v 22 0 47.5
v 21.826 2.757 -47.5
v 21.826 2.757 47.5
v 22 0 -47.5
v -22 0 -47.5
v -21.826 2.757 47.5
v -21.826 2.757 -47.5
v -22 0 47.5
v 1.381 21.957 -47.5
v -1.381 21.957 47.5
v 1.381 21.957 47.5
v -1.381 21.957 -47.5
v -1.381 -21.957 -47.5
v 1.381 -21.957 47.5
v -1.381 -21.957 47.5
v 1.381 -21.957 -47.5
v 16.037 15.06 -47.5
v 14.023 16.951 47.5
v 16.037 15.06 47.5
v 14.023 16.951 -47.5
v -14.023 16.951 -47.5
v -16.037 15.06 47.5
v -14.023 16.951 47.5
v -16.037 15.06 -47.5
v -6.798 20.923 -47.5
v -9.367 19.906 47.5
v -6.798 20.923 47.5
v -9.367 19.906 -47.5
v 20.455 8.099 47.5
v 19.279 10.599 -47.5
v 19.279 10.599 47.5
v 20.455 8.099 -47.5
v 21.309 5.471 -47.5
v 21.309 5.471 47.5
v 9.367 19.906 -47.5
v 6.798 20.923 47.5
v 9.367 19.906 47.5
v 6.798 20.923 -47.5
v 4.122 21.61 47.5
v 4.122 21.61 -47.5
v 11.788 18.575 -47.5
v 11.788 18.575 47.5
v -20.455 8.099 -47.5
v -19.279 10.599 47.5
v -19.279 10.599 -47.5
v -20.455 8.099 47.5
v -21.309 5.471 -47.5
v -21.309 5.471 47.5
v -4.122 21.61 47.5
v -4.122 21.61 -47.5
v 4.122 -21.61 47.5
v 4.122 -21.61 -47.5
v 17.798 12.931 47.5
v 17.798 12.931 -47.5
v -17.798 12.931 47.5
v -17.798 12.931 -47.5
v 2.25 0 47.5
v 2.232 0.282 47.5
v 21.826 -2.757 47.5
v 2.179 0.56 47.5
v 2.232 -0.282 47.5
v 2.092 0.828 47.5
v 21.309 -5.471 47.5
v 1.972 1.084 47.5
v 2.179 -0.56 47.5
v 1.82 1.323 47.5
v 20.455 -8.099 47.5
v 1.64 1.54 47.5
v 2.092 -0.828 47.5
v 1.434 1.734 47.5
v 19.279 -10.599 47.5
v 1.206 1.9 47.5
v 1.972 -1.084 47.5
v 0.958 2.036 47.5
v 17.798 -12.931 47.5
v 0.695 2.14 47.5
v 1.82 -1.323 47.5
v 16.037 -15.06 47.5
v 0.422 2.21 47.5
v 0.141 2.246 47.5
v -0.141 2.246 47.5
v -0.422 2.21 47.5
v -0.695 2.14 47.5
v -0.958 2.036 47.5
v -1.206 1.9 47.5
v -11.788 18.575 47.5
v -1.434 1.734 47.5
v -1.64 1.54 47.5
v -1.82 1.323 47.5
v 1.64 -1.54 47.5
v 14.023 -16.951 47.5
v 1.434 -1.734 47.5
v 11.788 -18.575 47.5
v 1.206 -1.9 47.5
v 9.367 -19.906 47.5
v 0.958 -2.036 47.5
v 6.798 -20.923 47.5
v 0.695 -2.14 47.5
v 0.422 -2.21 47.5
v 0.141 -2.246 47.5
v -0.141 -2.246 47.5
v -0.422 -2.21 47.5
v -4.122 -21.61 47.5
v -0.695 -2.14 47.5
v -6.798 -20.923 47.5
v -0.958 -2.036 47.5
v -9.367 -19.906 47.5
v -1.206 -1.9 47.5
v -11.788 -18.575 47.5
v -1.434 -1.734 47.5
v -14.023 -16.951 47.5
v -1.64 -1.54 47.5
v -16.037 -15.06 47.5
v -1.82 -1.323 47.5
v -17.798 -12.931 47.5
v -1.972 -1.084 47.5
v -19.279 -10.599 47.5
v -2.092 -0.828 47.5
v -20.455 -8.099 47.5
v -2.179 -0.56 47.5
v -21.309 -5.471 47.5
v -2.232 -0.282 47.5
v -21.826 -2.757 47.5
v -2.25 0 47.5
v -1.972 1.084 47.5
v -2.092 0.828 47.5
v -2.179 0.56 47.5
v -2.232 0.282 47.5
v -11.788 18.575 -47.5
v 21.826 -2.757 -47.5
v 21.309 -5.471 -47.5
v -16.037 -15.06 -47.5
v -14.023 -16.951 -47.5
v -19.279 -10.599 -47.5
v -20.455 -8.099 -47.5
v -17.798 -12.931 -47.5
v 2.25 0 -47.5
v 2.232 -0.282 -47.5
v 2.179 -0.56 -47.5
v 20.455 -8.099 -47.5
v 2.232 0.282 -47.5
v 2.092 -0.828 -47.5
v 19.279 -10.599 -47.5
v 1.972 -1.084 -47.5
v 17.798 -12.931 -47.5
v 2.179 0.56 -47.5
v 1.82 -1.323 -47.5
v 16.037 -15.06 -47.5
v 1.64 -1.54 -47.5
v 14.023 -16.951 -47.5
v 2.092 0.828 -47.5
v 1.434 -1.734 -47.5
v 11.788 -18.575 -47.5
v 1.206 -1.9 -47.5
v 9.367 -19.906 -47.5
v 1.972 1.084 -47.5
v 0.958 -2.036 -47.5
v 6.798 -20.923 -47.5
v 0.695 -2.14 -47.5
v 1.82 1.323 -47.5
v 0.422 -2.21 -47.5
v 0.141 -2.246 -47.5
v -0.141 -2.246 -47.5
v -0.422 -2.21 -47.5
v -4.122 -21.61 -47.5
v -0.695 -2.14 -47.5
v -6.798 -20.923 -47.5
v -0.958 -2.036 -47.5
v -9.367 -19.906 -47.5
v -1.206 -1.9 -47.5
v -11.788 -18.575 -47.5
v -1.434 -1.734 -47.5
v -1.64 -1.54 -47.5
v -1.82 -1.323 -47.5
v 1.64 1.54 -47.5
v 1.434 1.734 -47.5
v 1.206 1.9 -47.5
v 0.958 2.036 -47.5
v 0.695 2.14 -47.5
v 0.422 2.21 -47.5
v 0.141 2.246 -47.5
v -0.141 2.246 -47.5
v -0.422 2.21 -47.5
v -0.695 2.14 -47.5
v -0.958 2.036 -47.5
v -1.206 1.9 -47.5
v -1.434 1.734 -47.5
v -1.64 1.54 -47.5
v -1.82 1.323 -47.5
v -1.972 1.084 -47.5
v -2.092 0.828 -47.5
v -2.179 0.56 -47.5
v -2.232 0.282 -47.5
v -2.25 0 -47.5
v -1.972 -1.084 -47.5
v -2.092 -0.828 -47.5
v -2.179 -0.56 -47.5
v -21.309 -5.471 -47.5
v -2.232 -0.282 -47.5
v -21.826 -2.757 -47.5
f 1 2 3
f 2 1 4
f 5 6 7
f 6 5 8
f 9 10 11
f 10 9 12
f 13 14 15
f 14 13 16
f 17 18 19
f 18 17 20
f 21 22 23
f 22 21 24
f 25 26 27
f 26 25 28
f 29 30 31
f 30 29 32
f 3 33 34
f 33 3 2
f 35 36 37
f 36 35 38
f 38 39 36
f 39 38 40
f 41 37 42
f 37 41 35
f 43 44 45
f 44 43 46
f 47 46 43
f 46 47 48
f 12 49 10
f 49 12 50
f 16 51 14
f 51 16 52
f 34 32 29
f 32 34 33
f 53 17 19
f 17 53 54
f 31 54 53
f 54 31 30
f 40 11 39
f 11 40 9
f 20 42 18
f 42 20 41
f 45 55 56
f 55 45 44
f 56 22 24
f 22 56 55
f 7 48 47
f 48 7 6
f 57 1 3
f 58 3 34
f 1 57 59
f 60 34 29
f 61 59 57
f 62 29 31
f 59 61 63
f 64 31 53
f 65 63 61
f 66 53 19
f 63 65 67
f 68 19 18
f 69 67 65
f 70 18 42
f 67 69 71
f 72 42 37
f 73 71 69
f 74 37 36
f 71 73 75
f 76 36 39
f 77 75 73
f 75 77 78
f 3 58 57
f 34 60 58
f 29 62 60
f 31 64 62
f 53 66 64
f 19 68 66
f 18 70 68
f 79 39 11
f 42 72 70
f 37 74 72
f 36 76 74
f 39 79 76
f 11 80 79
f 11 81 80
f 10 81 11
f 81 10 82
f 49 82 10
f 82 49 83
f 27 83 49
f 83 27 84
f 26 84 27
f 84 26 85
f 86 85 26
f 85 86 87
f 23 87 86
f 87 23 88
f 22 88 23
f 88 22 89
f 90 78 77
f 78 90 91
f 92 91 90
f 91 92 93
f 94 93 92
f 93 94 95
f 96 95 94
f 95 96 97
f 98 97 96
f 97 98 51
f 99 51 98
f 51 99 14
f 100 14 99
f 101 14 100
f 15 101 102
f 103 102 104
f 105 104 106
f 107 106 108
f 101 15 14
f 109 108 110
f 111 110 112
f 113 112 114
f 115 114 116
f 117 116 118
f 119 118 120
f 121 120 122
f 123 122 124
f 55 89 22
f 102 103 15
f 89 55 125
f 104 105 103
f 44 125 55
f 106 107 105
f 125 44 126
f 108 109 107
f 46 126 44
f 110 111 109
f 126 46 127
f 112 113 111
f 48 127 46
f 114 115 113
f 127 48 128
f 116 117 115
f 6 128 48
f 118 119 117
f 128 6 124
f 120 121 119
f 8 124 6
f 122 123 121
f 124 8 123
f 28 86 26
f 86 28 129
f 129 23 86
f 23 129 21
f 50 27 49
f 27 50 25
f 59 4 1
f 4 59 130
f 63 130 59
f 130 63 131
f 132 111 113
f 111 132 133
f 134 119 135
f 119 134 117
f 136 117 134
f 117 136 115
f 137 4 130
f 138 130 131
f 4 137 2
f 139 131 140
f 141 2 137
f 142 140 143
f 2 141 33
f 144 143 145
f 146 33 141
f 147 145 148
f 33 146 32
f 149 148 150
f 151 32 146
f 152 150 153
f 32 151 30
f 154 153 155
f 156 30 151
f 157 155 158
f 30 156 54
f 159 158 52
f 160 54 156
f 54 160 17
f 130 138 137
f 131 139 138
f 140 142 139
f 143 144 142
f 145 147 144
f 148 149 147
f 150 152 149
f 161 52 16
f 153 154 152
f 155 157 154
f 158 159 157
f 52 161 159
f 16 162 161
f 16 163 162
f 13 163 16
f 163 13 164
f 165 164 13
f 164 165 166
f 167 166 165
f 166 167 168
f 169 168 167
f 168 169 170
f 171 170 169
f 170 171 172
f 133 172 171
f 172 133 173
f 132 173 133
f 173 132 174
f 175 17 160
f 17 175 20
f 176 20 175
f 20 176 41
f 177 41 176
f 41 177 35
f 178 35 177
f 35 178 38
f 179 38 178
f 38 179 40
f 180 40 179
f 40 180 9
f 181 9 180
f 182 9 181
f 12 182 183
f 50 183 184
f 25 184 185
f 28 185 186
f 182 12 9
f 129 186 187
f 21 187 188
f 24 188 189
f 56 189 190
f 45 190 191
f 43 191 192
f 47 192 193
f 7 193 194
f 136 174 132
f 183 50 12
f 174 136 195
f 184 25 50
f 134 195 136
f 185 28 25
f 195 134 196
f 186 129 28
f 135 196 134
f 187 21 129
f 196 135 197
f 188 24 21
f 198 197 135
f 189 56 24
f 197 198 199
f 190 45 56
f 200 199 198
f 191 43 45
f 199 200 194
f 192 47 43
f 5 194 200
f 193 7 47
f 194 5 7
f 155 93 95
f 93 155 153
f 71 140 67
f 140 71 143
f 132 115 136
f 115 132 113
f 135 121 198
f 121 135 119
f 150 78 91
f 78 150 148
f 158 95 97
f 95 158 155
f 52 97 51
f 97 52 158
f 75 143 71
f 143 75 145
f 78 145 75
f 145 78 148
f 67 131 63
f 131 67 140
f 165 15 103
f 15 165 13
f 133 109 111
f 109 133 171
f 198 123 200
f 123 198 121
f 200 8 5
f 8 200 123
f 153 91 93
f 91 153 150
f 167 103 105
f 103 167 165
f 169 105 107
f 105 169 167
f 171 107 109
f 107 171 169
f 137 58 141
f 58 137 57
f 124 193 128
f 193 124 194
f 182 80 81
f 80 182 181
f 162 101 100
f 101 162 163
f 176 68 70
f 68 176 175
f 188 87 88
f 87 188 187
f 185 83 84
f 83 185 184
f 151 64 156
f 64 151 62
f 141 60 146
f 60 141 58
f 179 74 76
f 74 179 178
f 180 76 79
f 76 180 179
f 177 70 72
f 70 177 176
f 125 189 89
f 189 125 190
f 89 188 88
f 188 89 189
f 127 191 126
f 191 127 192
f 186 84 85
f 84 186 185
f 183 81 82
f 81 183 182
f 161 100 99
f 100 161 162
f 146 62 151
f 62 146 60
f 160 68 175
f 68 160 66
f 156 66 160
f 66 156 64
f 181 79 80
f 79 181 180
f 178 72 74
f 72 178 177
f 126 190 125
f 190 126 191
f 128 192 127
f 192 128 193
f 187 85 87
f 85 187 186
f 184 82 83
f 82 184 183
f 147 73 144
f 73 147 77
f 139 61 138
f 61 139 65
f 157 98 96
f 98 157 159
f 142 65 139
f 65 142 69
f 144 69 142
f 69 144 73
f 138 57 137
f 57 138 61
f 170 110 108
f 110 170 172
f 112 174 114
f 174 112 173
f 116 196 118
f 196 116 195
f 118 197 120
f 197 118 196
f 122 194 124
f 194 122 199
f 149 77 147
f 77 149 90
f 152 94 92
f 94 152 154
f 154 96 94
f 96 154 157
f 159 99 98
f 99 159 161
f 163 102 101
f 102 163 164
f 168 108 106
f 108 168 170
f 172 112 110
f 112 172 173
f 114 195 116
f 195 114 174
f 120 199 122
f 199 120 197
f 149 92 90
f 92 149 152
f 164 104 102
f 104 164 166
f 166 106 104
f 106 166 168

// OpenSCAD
$fn = 50;


difference() {
	union() {
		translate(v = [0, 0, -47.5000000000]) {
			cylinder(h = 95, r = 22.0000000000);
		}
	}
	union() {
		translate(v = [0, 0, -100.0000000000]) {
			cylinder(h = 200, r = 2.2500000000);
		}
	}
}
